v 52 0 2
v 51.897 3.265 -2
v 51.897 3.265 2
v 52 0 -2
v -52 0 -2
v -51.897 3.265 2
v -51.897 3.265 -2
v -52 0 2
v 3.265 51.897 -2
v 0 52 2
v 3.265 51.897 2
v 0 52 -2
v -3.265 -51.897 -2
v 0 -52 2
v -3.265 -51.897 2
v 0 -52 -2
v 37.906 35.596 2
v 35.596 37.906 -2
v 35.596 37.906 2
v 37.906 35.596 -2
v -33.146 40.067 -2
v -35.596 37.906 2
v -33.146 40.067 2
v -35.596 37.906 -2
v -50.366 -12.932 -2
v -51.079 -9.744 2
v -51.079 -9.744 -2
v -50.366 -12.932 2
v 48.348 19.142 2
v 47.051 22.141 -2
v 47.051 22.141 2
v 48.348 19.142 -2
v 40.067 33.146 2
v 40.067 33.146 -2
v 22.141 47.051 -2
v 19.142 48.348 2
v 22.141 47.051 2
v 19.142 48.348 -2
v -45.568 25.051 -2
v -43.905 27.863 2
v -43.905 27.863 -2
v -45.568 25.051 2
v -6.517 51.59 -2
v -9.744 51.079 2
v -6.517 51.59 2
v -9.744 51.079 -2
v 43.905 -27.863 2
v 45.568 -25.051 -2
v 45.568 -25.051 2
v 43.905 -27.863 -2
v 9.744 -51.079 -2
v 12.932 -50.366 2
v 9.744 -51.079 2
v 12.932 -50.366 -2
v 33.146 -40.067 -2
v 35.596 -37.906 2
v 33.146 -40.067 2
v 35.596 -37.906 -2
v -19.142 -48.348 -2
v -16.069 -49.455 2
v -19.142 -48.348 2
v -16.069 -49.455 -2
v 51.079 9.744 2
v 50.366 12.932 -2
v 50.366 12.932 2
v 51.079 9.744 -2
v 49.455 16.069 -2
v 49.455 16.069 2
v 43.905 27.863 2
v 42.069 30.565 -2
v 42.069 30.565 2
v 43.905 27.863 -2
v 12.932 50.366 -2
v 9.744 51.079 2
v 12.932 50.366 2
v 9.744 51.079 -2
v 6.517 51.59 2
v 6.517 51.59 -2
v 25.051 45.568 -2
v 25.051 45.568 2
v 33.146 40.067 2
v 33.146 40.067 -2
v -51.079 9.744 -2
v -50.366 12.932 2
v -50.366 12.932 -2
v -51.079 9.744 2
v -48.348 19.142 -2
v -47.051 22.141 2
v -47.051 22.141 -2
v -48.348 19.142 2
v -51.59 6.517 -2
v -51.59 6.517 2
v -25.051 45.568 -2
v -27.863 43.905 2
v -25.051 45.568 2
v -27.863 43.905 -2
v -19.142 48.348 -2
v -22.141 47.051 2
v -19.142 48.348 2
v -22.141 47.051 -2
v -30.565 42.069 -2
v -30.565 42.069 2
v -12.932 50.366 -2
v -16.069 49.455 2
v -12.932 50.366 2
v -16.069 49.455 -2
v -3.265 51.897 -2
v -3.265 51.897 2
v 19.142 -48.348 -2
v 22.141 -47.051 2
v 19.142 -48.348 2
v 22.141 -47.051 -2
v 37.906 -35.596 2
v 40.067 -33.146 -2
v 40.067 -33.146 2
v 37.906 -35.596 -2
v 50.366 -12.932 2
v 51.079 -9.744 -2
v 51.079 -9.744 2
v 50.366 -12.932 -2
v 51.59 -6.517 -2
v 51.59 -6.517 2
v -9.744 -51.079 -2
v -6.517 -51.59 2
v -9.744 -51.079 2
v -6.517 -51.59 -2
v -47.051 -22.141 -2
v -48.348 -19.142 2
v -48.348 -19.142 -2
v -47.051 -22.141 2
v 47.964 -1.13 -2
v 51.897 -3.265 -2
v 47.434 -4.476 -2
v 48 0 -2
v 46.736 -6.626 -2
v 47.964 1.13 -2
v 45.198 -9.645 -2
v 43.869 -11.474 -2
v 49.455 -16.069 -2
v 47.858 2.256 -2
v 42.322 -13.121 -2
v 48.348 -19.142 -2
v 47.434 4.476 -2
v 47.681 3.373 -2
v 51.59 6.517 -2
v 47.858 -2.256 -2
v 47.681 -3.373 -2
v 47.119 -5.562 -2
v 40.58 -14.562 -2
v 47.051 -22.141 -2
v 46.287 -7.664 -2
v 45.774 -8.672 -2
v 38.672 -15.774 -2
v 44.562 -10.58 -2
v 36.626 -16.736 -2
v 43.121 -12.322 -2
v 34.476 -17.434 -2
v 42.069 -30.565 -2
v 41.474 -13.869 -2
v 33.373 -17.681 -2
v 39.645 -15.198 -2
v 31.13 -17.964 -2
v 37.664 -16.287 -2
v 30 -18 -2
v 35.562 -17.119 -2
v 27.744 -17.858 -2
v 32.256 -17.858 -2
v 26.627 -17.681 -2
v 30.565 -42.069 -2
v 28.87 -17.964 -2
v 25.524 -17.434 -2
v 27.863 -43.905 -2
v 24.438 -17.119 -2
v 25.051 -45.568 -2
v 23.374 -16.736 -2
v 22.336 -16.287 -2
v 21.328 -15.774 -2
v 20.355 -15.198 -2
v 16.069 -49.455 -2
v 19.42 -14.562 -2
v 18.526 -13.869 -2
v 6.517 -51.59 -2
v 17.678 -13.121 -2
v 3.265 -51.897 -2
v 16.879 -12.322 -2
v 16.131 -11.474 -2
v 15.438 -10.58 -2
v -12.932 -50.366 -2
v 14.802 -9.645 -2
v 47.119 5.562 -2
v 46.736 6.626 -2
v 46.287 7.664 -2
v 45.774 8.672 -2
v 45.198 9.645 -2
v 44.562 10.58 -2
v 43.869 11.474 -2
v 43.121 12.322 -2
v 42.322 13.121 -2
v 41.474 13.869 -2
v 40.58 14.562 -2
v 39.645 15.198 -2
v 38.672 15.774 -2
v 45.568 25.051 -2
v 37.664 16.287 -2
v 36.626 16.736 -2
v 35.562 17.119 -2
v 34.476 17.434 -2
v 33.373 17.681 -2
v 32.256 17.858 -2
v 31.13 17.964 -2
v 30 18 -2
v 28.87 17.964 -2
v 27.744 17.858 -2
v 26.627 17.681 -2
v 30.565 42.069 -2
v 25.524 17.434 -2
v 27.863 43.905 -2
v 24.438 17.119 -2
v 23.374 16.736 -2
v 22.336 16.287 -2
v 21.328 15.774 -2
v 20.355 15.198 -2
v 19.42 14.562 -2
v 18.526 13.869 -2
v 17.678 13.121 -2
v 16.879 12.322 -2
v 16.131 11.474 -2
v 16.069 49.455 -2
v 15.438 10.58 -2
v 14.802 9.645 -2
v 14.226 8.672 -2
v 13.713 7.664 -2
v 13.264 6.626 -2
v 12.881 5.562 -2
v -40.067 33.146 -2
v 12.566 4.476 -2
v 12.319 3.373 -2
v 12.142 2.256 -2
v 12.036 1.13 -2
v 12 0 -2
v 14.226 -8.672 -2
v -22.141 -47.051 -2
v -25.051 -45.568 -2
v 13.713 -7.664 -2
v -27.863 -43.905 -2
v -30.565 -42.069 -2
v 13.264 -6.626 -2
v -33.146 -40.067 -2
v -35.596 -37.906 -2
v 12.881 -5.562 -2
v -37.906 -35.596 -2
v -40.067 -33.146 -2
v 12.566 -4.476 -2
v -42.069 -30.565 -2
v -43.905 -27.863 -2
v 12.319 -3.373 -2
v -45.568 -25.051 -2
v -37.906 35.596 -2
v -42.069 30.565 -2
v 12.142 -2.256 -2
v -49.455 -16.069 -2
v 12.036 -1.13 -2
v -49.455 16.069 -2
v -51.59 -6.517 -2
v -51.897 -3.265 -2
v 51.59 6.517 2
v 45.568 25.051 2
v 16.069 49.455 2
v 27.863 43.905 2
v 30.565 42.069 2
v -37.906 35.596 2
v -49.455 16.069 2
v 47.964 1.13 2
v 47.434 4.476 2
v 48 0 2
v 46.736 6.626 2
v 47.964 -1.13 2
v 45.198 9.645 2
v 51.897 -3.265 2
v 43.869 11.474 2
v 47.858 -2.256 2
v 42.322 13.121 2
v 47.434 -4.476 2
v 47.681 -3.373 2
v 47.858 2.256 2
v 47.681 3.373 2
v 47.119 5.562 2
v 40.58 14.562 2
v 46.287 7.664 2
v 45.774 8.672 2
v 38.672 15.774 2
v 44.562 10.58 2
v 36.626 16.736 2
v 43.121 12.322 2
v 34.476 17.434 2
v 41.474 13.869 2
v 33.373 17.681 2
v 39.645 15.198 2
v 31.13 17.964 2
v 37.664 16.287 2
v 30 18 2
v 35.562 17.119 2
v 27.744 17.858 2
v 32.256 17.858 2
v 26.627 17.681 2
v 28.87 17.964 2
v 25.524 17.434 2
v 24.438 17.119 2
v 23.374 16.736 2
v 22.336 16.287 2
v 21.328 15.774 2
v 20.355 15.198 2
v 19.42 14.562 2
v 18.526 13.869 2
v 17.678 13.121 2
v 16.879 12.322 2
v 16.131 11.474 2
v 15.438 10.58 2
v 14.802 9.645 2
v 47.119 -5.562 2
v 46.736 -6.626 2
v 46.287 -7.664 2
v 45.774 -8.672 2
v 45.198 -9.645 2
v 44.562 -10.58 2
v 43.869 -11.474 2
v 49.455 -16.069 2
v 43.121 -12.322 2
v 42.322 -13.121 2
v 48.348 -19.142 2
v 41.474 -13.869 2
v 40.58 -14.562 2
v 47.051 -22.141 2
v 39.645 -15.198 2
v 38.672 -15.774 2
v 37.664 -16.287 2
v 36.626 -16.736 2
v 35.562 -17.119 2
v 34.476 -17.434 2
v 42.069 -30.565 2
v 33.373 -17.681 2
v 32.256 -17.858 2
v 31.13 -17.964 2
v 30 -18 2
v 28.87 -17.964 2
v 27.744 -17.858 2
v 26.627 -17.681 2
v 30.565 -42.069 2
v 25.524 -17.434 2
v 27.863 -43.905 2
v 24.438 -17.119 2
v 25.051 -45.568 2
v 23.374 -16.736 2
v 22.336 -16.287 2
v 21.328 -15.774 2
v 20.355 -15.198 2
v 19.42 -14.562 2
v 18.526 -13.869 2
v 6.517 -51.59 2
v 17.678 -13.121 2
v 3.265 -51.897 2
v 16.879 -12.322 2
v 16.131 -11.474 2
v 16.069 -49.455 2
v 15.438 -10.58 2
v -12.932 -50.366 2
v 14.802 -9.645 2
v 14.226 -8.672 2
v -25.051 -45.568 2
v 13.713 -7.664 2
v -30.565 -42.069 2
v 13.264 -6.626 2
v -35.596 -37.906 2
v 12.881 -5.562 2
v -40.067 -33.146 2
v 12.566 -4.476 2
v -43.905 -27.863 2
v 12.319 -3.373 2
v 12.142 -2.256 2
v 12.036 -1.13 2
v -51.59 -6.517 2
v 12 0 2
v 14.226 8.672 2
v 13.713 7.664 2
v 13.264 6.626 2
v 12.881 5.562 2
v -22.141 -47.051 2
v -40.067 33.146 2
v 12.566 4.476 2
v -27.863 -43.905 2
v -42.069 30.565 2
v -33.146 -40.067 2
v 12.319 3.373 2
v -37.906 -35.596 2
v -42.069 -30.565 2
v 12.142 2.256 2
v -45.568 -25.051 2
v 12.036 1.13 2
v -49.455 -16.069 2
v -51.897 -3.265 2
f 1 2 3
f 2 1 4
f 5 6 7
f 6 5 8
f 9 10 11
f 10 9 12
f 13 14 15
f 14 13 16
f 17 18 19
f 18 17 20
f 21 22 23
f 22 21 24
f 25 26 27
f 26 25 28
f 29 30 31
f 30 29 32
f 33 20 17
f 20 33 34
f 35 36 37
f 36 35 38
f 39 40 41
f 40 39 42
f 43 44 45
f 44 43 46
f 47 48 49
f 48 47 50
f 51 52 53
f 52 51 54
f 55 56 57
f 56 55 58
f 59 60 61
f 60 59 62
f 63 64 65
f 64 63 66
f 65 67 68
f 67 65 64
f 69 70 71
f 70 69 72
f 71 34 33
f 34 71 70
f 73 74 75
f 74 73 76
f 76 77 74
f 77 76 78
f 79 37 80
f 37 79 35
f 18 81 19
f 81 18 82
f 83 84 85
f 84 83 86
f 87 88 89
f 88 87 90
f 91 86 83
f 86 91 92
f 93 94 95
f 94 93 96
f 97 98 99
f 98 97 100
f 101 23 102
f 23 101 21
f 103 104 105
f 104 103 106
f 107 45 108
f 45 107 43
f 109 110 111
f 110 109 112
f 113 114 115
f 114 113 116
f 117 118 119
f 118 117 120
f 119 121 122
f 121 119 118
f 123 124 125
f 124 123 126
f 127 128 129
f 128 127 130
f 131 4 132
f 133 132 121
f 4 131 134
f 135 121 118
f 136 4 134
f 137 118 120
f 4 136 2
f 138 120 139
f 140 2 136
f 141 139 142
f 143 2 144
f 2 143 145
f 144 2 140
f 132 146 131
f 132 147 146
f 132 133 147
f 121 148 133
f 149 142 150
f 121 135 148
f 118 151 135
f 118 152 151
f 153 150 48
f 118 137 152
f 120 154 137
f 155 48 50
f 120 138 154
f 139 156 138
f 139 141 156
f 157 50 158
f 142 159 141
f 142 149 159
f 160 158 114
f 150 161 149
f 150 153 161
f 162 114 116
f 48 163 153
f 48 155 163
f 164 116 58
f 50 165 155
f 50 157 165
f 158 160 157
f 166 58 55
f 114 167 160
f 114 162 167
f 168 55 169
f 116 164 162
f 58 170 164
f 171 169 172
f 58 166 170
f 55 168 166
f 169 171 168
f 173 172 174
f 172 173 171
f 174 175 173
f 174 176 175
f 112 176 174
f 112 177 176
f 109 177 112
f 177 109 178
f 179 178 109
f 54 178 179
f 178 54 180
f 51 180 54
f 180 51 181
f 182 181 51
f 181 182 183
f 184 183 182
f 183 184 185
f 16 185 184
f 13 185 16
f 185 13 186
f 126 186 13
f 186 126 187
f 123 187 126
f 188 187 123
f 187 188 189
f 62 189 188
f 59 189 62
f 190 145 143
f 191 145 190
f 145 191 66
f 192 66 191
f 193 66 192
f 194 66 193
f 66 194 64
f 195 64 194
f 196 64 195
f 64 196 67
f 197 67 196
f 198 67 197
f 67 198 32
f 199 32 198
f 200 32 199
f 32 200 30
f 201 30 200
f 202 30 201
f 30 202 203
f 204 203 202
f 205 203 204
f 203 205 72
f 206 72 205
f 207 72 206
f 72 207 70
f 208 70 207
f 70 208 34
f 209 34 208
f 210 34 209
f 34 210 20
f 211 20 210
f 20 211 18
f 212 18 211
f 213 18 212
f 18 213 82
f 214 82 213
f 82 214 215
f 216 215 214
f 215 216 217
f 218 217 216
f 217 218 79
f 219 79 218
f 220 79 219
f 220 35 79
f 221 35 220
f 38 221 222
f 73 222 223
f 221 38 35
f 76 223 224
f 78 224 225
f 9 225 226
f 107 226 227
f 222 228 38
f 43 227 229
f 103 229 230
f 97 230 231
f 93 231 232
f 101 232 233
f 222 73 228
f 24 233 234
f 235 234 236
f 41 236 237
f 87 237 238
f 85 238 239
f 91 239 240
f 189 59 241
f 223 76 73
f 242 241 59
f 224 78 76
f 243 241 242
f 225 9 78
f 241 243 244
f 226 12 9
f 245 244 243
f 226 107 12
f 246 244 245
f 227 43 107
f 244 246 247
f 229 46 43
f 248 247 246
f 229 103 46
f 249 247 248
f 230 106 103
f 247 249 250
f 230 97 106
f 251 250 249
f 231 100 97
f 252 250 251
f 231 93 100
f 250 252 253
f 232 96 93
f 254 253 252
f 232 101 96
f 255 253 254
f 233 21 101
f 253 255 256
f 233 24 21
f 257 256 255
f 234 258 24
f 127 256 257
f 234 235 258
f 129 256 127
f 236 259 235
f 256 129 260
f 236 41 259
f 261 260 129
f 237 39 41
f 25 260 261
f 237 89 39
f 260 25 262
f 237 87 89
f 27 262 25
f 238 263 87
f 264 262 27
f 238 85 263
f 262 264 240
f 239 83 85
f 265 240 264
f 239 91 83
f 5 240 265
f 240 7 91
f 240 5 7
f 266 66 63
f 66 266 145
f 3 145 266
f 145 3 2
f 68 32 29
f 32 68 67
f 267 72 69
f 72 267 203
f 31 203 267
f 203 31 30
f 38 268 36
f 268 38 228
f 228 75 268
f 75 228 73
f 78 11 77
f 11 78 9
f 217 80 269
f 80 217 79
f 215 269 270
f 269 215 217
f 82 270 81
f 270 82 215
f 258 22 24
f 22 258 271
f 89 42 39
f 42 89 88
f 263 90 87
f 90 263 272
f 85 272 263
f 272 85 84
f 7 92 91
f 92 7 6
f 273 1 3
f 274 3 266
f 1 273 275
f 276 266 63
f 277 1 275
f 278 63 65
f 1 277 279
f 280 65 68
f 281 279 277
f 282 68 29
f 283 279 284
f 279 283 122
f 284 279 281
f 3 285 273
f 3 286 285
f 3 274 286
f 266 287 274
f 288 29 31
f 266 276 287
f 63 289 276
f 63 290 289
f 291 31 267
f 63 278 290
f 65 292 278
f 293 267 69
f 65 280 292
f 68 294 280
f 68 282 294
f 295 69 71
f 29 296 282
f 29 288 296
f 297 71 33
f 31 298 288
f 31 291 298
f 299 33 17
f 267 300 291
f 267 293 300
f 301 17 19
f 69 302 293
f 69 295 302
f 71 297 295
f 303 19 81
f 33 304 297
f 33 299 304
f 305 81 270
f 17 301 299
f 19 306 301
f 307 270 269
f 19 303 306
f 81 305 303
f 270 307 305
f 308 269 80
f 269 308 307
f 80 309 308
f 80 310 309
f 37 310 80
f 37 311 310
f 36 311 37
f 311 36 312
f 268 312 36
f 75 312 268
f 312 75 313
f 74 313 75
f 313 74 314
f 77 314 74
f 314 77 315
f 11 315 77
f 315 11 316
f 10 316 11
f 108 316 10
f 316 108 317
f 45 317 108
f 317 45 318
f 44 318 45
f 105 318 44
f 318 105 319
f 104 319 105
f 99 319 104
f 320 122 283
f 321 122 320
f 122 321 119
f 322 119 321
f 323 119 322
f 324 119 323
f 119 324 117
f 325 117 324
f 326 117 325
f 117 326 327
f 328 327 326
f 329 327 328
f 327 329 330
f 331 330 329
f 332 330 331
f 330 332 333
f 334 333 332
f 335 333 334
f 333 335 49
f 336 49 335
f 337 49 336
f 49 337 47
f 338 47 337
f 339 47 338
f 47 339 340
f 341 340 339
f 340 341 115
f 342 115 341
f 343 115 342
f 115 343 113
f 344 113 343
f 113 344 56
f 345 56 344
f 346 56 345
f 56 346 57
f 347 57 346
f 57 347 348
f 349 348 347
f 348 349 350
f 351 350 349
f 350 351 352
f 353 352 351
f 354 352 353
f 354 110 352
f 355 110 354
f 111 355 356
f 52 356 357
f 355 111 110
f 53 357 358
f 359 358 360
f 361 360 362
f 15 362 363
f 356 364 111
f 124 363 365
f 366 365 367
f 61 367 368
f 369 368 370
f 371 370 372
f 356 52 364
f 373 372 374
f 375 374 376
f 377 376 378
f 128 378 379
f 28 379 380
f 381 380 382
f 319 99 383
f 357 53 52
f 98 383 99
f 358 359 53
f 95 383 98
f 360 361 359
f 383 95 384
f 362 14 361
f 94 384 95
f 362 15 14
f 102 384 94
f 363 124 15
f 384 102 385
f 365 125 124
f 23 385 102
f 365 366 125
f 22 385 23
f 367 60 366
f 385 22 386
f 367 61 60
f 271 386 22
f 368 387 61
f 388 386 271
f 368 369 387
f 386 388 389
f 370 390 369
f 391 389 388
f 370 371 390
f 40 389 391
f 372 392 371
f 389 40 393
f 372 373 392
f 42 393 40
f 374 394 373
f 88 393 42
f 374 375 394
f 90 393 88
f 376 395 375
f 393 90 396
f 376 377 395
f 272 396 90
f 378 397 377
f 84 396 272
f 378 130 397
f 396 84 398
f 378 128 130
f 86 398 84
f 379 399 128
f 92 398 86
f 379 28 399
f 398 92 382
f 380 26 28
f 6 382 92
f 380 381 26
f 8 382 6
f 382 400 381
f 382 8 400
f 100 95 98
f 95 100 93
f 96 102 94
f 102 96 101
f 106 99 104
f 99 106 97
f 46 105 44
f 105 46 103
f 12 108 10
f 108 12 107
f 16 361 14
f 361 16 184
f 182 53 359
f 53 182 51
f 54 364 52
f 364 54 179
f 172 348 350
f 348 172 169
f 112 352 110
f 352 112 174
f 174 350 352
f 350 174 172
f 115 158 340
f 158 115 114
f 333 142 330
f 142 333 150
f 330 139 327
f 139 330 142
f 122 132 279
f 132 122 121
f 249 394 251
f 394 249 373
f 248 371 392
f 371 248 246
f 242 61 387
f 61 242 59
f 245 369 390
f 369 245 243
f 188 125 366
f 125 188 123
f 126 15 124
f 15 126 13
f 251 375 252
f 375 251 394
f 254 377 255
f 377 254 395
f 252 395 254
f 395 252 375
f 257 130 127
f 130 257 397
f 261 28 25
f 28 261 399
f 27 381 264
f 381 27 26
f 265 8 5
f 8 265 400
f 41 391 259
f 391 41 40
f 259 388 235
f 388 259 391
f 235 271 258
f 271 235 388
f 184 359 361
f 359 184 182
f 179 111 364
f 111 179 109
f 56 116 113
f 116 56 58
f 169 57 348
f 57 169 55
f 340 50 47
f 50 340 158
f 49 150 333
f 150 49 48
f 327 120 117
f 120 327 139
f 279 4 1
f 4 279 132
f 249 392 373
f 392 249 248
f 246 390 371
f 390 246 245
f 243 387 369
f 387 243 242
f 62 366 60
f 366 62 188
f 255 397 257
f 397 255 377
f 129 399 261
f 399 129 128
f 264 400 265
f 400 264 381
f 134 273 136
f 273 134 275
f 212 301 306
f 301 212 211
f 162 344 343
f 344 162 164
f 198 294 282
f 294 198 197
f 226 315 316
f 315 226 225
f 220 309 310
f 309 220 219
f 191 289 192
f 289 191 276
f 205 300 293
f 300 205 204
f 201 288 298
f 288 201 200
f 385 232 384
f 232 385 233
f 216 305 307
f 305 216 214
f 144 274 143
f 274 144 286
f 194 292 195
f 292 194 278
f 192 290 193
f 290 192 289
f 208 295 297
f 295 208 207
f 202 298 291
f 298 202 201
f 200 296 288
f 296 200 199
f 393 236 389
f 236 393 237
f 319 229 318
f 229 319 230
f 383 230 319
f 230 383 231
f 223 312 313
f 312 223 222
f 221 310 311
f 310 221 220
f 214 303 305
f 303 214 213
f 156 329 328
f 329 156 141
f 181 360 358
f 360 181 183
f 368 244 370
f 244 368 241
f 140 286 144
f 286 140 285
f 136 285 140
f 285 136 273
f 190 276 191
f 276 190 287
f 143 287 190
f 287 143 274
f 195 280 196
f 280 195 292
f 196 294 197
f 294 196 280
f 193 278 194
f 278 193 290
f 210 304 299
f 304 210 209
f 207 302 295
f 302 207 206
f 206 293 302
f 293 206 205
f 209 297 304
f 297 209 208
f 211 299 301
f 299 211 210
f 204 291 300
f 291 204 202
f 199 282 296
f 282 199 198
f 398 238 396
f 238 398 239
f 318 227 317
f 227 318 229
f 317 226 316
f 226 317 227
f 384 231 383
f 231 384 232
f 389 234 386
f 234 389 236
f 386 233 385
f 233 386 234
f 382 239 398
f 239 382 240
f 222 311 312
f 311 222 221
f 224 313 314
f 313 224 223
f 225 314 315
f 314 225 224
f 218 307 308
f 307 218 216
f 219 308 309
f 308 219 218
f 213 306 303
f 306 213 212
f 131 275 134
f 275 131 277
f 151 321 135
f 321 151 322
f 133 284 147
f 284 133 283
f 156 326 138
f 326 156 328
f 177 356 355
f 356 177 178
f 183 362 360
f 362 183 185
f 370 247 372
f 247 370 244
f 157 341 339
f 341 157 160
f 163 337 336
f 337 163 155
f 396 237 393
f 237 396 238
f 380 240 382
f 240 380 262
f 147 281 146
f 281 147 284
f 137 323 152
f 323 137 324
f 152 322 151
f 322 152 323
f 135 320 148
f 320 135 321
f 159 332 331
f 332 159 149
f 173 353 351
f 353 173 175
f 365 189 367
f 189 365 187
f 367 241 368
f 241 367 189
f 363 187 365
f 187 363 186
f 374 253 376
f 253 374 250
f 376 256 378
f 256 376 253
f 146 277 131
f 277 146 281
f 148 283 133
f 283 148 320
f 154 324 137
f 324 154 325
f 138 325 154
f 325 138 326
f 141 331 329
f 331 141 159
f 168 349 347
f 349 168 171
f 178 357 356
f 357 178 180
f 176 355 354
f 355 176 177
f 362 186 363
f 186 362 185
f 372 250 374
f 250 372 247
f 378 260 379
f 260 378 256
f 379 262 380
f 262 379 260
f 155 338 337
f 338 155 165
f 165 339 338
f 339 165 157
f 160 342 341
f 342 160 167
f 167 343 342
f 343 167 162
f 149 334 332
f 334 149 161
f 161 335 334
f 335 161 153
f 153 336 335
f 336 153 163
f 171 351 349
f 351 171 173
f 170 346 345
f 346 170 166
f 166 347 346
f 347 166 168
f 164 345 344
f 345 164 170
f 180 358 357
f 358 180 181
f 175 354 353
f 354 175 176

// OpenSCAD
$fn = 100;

difference() {
    cylinder(4, 52, 52, center=true);
    translate([30, 0, 0]) {
        cylinder(5, 18, 18, center=true);
    }
}
